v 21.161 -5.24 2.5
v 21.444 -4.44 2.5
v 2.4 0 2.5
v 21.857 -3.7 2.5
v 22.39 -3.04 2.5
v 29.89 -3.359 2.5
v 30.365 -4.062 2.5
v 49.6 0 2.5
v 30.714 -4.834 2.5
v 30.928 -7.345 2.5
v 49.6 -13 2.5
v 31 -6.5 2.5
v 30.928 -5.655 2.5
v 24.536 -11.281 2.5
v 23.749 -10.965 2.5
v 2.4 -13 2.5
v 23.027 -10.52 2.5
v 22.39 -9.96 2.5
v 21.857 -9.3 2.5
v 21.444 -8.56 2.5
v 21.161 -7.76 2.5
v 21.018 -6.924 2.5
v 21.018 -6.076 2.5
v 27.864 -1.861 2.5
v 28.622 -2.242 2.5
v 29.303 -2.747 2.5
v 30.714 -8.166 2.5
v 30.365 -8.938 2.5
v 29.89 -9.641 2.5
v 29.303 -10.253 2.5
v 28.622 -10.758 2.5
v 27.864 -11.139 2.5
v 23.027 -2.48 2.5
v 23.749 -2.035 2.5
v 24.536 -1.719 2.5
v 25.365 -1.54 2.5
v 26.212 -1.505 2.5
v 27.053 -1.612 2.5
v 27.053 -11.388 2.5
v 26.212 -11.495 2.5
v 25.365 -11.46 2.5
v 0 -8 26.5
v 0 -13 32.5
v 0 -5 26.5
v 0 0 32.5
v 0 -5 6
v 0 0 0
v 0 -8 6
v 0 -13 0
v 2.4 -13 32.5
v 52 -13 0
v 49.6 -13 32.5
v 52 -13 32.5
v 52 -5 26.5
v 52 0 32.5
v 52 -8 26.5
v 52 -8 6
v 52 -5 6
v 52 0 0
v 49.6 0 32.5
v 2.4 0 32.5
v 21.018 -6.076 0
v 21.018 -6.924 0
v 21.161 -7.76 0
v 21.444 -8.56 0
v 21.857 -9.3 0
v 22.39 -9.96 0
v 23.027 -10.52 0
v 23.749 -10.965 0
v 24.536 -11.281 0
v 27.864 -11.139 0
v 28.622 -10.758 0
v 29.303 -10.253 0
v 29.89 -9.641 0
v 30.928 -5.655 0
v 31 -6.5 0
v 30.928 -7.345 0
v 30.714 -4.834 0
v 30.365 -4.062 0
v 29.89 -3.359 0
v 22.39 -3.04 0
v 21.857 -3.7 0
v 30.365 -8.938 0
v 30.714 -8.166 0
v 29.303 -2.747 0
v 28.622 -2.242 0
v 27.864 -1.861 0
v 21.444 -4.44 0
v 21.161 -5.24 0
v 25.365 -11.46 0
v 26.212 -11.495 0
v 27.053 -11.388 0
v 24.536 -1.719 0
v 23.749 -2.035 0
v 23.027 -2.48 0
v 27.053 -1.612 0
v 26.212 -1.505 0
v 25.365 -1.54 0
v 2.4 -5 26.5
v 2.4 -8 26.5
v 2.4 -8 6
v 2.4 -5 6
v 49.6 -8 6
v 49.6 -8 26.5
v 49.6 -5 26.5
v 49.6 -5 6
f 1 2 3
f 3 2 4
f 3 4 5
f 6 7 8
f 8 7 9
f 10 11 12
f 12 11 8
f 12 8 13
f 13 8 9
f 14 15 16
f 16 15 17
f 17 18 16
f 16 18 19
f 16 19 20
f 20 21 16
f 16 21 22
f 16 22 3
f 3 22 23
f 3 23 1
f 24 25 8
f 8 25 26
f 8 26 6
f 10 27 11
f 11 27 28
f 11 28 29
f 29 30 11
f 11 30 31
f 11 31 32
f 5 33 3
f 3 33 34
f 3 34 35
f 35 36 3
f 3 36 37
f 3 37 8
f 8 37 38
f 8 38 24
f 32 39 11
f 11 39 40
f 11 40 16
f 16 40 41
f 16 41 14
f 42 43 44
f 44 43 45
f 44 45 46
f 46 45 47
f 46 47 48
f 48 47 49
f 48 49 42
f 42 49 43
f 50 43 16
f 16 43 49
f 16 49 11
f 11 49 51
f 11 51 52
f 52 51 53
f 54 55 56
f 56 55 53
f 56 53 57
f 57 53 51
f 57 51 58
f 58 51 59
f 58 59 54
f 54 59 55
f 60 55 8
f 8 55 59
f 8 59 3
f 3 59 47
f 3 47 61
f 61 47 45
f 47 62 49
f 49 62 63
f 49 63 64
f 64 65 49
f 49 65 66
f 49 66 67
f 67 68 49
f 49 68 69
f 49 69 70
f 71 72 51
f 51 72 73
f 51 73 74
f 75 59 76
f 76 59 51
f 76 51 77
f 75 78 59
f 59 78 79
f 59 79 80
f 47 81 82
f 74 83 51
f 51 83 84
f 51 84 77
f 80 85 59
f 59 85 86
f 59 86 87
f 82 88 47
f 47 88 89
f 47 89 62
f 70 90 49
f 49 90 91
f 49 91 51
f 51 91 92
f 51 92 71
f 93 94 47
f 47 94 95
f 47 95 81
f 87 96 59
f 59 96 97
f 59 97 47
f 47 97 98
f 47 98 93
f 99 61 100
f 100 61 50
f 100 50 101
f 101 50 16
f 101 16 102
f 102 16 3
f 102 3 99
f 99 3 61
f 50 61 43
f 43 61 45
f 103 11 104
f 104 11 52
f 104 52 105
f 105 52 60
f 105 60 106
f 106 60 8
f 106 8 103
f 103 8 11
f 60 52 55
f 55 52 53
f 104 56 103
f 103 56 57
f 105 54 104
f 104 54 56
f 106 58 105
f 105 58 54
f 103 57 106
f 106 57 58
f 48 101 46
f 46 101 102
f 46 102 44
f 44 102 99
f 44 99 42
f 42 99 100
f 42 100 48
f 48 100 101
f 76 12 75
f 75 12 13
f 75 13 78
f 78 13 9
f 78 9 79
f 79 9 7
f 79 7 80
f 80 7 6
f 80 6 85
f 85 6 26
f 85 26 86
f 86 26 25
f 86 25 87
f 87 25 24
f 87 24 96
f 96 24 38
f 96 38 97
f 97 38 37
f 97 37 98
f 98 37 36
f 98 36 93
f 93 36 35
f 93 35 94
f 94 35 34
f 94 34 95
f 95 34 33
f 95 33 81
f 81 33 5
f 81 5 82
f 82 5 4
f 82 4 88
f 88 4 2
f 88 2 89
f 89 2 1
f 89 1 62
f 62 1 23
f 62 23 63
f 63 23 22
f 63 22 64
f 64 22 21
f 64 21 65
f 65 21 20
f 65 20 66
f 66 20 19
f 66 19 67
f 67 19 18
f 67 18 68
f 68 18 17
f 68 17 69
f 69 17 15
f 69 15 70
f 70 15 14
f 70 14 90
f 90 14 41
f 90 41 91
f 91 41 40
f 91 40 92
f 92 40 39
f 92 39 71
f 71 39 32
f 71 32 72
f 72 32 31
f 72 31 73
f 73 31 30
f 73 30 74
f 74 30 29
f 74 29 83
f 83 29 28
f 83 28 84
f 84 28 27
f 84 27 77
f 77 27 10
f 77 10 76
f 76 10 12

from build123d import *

# Parameters (mm, degrees)
SKETCH1_W           = 52
SKETCH1_H           = 13
BOSS_EXTRUDE1_DEPTH = 2.5
SKETCH2_W           = 2.4
SKETCH2_H           = 13
BOSS_EXTRUDE2_DEPTH = 30
SKETCH3_W           = 20.5
SKETCH3_H           = 3
CUT_EXTRUDE1_DEPTH  = 55
SKETCH4_R           = 5
CUT_EXTRUDE2_DEPTH  = 55


with BuildPart() as part:
    # Sketch1 → Boss-Extrude1 (new body)
    with BuildSketch(Plane.XY):
        with Locations((26, -6.5)):
            Rectangle(SKETCH1_W, SKETCH1_H)
    extrude(amount=BOSS_EXTRUDE1_DEPTH)

    # Sketch2 → Boss-Extrude2 (add)
    with BuildSketch(Plane.XY.offset(2.5)):
        with Locations((1.2, -6.5)):
            Rectangle(SKETCH2_W, SKETCH2_H)
        with Locations((50.8, -6.5)):
            Rectangle(SKETCH2_W, SKETCH2_H)
    extrude(amount=BOSS_EXTRUDE2_DEPTH)

    # Sketch3 → Cut-Extrude1 (cut)
    with BuildSketch(Plane.ZY):
        with Locations((16.25, -6.5)):
            Rectangle(SKETCH3_W, SKETCH3_H)
    extrude(amount=-CUT_EXTRUDE1_DEPTH, mode=Mode.SUBTRACT)

    # Sketch4 → Cut-Extrude2 (cut)
    with BuildSketch(Plane.XY.offset(2.5)):
        with Locations((26, -6.5)):
            Circle(SKETCH4_R)
    extrude(amount=-CUT_EXTRUDE2_DEPTH, mode=Mode.SUBTRACT)


solid = part.part
